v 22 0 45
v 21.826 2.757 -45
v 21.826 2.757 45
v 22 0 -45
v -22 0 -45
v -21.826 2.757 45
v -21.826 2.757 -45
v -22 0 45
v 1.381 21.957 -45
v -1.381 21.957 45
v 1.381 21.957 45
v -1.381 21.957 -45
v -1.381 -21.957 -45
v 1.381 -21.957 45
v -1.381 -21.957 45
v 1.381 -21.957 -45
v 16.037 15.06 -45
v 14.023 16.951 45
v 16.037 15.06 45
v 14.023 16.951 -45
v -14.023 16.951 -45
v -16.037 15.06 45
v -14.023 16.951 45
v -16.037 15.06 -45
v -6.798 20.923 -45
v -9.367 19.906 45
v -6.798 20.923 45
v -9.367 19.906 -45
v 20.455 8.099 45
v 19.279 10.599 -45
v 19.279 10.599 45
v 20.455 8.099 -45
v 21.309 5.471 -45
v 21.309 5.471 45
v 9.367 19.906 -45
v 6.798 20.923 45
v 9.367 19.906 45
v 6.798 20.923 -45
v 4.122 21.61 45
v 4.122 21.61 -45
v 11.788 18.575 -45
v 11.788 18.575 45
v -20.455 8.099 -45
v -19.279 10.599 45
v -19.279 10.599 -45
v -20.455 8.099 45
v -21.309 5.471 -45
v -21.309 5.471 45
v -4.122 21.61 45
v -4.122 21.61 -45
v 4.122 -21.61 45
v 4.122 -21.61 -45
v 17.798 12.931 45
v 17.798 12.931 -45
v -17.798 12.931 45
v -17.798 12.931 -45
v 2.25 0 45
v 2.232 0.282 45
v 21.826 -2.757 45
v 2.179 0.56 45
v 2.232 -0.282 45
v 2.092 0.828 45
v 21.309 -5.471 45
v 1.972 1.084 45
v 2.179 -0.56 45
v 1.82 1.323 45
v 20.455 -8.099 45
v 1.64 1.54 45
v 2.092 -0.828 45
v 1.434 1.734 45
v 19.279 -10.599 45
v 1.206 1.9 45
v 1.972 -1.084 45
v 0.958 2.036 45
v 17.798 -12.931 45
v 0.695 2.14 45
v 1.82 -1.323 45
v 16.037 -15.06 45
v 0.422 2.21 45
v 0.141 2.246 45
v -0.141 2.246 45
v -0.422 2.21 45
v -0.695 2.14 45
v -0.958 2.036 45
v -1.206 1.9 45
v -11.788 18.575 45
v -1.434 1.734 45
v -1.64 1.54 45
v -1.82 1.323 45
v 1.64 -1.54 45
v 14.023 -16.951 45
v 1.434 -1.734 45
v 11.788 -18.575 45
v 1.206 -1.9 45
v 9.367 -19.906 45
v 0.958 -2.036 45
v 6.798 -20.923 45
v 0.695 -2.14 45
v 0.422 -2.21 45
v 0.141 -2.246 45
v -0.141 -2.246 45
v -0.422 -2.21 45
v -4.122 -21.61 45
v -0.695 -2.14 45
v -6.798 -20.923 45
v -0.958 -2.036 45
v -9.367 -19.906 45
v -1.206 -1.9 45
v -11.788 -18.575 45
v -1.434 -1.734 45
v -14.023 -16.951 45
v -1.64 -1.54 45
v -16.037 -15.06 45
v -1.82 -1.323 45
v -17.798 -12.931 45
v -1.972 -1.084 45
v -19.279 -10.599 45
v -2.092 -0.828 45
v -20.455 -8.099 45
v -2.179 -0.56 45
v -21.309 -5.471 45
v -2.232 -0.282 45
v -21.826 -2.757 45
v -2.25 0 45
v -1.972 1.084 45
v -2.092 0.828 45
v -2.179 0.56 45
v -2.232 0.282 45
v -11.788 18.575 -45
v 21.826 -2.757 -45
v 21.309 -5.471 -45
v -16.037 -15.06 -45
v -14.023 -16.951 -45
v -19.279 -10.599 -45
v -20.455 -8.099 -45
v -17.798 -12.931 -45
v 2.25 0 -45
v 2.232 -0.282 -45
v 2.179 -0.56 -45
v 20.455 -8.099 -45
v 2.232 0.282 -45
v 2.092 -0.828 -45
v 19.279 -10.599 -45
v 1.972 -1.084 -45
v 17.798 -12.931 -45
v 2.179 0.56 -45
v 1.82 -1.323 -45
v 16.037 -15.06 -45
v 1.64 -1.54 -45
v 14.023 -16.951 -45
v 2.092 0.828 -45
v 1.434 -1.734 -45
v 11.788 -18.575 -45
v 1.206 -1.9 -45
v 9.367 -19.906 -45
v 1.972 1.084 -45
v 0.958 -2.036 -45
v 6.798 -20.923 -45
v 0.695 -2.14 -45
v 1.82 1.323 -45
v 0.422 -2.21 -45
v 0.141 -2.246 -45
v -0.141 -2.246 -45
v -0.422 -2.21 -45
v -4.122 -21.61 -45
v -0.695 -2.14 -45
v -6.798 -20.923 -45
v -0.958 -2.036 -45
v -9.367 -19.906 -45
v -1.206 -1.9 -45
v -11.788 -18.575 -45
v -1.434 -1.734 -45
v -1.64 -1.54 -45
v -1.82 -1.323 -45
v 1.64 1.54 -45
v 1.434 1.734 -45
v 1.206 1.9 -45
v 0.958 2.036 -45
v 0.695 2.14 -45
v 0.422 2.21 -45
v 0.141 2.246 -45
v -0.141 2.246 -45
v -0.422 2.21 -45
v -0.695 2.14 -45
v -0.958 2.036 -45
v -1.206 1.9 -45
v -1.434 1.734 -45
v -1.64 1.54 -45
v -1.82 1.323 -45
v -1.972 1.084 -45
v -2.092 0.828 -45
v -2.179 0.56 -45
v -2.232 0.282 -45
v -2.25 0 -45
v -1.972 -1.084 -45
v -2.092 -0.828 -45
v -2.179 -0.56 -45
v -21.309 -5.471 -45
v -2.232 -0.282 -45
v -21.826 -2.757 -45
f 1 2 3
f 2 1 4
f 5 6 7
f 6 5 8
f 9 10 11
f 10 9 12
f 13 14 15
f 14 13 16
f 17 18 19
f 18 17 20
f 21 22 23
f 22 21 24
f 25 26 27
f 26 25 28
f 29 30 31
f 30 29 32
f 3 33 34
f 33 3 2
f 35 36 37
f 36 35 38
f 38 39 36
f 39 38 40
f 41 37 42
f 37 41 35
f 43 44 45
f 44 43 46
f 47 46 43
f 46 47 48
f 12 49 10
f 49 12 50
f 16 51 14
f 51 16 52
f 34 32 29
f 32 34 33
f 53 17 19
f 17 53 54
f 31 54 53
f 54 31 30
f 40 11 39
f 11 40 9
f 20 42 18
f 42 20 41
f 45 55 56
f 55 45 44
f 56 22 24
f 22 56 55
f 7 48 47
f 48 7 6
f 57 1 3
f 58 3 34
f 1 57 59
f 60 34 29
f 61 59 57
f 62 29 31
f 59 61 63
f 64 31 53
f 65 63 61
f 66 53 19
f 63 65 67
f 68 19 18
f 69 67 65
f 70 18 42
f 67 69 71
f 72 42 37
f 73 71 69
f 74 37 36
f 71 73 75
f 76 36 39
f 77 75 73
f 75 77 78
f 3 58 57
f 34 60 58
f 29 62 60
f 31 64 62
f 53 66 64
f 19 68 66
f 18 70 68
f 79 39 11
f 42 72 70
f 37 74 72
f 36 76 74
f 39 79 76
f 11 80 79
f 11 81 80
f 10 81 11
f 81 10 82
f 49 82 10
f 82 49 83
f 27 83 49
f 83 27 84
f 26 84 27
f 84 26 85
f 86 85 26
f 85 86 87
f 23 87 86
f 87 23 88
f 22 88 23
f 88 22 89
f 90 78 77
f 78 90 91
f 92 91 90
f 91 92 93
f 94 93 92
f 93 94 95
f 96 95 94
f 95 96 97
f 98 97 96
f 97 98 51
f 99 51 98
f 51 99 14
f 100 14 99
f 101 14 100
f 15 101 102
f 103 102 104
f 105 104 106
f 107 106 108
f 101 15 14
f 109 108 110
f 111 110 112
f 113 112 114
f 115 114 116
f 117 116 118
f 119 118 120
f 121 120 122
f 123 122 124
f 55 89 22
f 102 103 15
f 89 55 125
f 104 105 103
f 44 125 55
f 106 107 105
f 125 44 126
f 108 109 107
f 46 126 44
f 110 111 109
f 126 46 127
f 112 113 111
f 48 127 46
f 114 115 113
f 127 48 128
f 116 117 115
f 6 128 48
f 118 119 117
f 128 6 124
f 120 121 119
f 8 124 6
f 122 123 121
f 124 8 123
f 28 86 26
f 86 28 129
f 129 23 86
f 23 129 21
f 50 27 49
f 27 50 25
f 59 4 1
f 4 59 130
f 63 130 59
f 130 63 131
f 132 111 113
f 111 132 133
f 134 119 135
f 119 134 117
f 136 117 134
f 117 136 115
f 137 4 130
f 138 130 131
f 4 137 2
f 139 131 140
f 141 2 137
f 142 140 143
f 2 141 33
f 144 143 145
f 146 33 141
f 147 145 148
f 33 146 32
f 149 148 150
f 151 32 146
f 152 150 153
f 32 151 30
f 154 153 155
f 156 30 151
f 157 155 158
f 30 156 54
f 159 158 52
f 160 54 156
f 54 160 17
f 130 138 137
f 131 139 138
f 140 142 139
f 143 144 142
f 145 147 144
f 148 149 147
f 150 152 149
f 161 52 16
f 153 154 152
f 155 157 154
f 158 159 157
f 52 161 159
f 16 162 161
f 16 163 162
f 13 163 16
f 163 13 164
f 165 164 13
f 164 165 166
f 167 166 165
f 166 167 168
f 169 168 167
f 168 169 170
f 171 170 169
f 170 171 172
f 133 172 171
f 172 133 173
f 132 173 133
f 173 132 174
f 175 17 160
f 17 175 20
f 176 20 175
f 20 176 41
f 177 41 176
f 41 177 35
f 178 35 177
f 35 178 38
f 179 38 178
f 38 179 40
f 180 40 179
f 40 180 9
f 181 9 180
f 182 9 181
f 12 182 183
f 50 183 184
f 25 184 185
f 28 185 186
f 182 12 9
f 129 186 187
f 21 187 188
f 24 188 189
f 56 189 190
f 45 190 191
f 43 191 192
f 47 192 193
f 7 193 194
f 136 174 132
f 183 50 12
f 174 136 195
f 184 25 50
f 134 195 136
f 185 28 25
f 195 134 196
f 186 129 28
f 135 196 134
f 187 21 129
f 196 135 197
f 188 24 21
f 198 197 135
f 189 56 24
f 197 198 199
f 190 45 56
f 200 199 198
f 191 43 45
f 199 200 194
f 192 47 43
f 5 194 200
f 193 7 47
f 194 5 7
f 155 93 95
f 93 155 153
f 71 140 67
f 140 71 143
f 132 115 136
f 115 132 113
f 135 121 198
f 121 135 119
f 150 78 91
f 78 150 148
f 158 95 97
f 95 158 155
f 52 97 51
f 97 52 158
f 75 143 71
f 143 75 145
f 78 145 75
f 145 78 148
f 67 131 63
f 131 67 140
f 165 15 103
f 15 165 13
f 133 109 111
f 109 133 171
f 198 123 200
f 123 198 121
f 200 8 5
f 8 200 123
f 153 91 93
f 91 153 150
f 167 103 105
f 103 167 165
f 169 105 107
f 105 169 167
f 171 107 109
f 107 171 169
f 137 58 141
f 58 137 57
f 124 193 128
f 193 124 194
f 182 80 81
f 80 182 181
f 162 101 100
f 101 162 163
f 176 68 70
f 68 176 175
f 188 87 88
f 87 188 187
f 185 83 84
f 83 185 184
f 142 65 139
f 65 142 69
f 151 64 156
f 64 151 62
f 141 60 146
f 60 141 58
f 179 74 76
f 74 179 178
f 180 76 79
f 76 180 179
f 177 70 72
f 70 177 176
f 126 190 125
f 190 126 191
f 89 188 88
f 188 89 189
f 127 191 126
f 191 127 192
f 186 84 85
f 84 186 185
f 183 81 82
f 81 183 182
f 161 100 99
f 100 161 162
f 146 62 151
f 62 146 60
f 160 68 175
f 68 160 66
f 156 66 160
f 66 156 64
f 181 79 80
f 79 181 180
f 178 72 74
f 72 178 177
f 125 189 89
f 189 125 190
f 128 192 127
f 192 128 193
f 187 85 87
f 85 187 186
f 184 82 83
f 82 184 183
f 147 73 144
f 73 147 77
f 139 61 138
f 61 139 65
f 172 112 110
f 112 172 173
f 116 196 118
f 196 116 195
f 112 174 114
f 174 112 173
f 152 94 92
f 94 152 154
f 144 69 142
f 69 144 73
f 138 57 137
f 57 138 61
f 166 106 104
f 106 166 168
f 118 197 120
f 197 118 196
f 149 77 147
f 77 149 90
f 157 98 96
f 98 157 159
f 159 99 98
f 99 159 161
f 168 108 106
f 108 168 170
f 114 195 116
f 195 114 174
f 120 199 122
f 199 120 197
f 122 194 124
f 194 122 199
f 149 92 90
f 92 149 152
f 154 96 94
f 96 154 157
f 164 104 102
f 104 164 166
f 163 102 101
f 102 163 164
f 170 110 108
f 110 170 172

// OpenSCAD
$fn = 50;


difference() {
	union() {
		translate(v = [0, 0, -45.0000000000]) {
			cylinder(h = 90, r = 22.0000000000);
		}
	}
	union() {
		translate(v = [0, 0, -100.0000000000]) {
			cylinder(h = 200, r = 2.2500000000);
		}
	}
}
